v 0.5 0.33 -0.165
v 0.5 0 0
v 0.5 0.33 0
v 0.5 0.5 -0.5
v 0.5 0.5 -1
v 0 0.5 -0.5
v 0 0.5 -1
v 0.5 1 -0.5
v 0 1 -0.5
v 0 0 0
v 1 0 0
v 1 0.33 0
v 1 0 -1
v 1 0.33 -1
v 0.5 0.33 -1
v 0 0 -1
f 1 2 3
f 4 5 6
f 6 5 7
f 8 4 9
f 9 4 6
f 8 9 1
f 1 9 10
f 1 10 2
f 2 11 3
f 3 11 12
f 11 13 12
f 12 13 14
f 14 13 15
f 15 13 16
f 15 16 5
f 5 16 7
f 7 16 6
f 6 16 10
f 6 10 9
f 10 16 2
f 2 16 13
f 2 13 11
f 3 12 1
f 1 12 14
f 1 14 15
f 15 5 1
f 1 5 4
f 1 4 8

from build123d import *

# Parameters (mm, degrees)
SKETCH1_W               = 1
SKETCH1_H               = 1
BOSS_EXTRUDE1_DEPTH     = 1
CUT_EXTRUDE1_DEPTH      = 2.732050808
CUT_EXTRUDE1_DEPTH_BACK = 0.5
CUT_EXTRUDE2_DEPTH      = 2.732050808
CUT_EXTRUDE2_DEPTH_BACK = 0.5


with BuildPart() as part:
    # Sketch1 → Boss-Extrude1 (new body)
    with BuildSketch(Plane(origin=(0, 0, 0), x_dir=(1, 0, 0), z_dir=(0, 1, 0))):
        with Locations((0.5, 0.5)):
            Rectangle(SKETCH1_W, SKETCH1_H)
    extrude(amount=BOSS_EXTRUDE1_DEPTH)

    # Sketch2 → Cut-Extrude1 (cut, two sides: drawn at the far end of the back side and taken through both)
    with BuildSketch(Plane(origin=(1, 0, 0), x_dir=(0, 0, -1), z_dir=(1, 0, 0)).offset(-CUT_EXTRUDE1_DEPTH_BACK)):
        Polygon((-12.407405242, 0.33), (0, 0.33), (1, 0.33), (13.407405242, 0.33), (13.407405242, 25.144810484), (-12.407405242, 25.144810484), align=None)
    extrude(amount=CUT_EXTRUDE1_DEPTH + CUT_EXTRUDE1_DEPTH_BACK, mode=Mode.SUBTRACT)

    # Sketch3 → Cut-Extrude2 (cut, two sides: drawn at the far end of the back side and taken through both)
    with BuildSketch(Plane.ZY.offset(-CUT_EXTRUDE2_DEPTH_BACK)):
        Polygon((5.737047019, -11.474094038), (0, 0), (-0.5, 1), (-0.5, 0.5), (-1, 0.5), (-13.828427125, 0.5), (-0.435480574, 22.383855983), (19.12999357, 10.409761944), align=None)
    extrude(amount=CUT_EXTRUDE2_DEPTH + CUT_EXTRUDE2_DEPTH_BACK, mode=Mode.SUBTRACT)


solid = part.part
